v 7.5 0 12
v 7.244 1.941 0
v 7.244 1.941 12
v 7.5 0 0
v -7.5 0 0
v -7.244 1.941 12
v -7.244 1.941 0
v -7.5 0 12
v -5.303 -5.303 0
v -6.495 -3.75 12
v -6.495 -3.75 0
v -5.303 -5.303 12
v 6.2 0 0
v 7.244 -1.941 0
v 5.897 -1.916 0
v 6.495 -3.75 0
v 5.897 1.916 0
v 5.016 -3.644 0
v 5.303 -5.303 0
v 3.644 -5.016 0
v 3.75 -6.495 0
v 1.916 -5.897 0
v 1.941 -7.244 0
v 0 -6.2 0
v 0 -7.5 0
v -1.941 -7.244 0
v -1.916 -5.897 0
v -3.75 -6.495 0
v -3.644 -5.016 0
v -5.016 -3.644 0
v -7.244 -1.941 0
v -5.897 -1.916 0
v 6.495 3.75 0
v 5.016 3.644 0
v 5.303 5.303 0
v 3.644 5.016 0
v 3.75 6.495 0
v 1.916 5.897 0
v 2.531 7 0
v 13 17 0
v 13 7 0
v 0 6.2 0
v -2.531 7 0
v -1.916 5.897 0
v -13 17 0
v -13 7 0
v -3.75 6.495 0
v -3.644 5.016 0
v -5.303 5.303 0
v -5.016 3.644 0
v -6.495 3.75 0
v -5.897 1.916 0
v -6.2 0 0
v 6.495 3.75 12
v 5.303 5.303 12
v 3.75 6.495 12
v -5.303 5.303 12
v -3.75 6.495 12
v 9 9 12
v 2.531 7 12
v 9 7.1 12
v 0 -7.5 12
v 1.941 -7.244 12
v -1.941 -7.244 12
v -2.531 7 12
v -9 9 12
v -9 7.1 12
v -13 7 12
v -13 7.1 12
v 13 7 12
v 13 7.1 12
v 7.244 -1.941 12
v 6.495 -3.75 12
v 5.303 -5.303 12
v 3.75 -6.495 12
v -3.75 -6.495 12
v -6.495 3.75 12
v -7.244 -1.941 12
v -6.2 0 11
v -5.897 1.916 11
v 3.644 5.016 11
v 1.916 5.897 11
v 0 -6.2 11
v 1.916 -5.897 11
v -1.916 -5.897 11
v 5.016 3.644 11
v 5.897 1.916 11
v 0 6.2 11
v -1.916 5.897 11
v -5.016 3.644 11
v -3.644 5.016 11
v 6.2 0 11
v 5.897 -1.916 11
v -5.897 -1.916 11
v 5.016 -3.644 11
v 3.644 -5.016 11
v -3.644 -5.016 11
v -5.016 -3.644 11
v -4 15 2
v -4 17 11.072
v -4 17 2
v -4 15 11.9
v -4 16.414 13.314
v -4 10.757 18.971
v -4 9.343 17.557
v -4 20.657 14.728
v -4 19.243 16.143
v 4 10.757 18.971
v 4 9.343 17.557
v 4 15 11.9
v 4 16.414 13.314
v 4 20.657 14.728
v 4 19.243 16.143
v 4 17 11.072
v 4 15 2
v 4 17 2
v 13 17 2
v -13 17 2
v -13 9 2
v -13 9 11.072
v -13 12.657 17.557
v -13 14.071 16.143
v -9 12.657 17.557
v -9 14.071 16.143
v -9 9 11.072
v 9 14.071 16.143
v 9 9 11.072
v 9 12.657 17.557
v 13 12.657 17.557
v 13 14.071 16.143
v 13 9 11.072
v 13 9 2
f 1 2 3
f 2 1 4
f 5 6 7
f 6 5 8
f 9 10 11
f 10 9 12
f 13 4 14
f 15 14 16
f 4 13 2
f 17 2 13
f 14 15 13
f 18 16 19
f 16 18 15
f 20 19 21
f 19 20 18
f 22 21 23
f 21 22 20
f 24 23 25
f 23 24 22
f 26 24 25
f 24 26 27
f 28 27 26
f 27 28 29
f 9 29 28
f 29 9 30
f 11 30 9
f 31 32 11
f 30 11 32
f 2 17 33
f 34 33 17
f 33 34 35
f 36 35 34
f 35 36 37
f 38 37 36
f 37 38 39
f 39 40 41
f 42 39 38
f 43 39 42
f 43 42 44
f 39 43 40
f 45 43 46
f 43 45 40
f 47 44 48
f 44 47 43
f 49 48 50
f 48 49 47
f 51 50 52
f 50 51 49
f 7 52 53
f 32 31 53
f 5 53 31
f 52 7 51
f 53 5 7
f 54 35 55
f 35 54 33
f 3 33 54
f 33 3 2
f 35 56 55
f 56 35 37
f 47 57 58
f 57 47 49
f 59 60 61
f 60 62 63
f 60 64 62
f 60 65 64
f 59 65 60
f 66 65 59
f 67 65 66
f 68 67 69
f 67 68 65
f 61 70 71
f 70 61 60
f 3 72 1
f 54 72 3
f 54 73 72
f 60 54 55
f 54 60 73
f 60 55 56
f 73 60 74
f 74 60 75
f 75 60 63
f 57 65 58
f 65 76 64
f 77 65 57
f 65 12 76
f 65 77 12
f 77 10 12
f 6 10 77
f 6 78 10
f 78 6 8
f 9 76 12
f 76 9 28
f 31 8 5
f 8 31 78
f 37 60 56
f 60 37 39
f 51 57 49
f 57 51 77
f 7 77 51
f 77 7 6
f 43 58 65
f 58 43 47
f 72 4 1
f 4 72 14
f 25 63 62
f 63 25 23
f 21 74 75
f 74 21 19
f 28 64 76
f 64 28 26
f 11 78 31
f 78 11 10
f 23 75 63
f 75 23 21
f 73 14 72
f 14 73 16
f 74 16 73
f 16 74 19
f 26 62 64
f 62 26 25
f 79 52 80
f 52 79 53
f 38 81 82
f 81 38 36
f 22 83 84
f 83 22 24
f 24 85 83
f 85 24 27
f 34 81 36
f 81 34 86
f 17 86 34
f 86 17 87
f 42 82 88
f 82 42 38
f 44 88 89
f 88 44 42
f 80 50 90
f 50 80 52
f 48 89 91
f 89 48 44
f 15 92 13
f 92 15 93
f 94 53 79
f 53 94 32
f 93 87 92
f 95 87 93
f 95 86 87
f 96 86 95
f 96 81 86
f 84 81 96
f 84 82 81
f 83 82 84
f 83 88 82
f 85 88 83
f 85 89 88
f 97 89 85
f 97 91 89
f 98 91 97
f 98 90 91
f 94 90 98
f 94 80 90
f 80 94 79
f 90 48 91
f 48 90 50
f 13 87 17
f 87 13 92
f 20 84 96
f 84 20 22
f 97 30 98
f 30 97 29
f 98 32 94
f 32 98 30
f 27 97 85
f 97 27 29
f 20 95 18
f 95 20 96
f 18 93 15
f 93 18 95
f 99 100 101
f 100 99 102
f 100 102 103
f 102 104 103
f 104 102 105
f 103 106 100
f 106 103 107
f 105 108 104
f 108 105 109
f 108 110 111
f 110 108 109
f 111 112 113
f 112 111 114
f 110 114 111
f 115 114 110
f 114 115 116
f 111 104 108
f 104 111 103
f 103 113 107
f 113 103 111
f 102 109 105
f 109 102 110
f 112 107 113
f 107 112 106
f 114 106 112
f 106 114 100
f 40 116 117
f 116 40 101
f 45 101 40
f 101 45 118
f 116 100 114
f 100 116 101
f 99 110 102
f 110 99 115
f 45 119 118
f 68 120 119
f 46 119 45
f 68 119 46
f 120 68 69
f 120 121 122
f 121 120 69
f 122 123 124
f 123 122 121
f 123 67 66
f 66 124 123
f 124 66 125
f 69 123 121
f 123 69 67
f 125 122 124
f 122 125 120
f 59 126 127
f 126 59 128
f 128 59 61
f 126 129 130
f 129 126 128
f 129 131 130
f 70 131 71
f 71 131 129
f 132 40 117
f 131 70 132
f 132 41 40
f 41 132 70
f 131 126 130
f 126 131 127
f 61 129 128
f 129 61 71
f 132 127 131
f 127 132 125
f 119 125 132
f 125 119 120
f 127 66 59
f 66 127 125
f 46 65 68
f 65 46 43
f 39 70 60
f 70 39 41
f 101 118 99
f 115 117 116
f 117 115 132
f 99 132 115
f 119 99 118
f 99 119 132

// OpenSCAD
/** 
 * Filament guide for a printrbot simple metal
 * To be used on the 12mm z-axis
 * Made by: Christopher Bero
 * [bigbero@gmail.com]
 * https://github.com/ctag/printrbot/tree/master/parts_ctag/filament_guide
 */

// Join resulting pieces
union() {
    // Cap piece
    difference() {
        cylinder(12, 7.5, 7.5, [0, 0, 0]);
        cylinder(11, 6.2, 6.2, [0, 0, -0.2]);
    }
    // inner part of guide
    translate([-13, 7, 0]) {
        cube([26,2,12]); // plate against cap
        cube([26,10,2]); // Bottom plate
        translate([0,0,11.9]) {
            rotate([-45,0,0]) {
                cube([4,2,8]); // inside out flange
            }
        translate([22,0,0]) {
            rotate([-45,0,0]) {
                cube([4,2,8]); // inside out flange
            }
        }
        }
    }
    // outer part of guide
    translate([-4, 15, 0]) {
        cube([8,2,12]); // Vetical outer column
        translate([0,0,11.9]) {
            rotate([45,0,0]) {
                cube([8,2,8]); // innert flange
            }
            rotate([-45,0,0]) {
                cube([8,2,6]); // outter flange / thumb grip
            }
        }
    }
} // end union
